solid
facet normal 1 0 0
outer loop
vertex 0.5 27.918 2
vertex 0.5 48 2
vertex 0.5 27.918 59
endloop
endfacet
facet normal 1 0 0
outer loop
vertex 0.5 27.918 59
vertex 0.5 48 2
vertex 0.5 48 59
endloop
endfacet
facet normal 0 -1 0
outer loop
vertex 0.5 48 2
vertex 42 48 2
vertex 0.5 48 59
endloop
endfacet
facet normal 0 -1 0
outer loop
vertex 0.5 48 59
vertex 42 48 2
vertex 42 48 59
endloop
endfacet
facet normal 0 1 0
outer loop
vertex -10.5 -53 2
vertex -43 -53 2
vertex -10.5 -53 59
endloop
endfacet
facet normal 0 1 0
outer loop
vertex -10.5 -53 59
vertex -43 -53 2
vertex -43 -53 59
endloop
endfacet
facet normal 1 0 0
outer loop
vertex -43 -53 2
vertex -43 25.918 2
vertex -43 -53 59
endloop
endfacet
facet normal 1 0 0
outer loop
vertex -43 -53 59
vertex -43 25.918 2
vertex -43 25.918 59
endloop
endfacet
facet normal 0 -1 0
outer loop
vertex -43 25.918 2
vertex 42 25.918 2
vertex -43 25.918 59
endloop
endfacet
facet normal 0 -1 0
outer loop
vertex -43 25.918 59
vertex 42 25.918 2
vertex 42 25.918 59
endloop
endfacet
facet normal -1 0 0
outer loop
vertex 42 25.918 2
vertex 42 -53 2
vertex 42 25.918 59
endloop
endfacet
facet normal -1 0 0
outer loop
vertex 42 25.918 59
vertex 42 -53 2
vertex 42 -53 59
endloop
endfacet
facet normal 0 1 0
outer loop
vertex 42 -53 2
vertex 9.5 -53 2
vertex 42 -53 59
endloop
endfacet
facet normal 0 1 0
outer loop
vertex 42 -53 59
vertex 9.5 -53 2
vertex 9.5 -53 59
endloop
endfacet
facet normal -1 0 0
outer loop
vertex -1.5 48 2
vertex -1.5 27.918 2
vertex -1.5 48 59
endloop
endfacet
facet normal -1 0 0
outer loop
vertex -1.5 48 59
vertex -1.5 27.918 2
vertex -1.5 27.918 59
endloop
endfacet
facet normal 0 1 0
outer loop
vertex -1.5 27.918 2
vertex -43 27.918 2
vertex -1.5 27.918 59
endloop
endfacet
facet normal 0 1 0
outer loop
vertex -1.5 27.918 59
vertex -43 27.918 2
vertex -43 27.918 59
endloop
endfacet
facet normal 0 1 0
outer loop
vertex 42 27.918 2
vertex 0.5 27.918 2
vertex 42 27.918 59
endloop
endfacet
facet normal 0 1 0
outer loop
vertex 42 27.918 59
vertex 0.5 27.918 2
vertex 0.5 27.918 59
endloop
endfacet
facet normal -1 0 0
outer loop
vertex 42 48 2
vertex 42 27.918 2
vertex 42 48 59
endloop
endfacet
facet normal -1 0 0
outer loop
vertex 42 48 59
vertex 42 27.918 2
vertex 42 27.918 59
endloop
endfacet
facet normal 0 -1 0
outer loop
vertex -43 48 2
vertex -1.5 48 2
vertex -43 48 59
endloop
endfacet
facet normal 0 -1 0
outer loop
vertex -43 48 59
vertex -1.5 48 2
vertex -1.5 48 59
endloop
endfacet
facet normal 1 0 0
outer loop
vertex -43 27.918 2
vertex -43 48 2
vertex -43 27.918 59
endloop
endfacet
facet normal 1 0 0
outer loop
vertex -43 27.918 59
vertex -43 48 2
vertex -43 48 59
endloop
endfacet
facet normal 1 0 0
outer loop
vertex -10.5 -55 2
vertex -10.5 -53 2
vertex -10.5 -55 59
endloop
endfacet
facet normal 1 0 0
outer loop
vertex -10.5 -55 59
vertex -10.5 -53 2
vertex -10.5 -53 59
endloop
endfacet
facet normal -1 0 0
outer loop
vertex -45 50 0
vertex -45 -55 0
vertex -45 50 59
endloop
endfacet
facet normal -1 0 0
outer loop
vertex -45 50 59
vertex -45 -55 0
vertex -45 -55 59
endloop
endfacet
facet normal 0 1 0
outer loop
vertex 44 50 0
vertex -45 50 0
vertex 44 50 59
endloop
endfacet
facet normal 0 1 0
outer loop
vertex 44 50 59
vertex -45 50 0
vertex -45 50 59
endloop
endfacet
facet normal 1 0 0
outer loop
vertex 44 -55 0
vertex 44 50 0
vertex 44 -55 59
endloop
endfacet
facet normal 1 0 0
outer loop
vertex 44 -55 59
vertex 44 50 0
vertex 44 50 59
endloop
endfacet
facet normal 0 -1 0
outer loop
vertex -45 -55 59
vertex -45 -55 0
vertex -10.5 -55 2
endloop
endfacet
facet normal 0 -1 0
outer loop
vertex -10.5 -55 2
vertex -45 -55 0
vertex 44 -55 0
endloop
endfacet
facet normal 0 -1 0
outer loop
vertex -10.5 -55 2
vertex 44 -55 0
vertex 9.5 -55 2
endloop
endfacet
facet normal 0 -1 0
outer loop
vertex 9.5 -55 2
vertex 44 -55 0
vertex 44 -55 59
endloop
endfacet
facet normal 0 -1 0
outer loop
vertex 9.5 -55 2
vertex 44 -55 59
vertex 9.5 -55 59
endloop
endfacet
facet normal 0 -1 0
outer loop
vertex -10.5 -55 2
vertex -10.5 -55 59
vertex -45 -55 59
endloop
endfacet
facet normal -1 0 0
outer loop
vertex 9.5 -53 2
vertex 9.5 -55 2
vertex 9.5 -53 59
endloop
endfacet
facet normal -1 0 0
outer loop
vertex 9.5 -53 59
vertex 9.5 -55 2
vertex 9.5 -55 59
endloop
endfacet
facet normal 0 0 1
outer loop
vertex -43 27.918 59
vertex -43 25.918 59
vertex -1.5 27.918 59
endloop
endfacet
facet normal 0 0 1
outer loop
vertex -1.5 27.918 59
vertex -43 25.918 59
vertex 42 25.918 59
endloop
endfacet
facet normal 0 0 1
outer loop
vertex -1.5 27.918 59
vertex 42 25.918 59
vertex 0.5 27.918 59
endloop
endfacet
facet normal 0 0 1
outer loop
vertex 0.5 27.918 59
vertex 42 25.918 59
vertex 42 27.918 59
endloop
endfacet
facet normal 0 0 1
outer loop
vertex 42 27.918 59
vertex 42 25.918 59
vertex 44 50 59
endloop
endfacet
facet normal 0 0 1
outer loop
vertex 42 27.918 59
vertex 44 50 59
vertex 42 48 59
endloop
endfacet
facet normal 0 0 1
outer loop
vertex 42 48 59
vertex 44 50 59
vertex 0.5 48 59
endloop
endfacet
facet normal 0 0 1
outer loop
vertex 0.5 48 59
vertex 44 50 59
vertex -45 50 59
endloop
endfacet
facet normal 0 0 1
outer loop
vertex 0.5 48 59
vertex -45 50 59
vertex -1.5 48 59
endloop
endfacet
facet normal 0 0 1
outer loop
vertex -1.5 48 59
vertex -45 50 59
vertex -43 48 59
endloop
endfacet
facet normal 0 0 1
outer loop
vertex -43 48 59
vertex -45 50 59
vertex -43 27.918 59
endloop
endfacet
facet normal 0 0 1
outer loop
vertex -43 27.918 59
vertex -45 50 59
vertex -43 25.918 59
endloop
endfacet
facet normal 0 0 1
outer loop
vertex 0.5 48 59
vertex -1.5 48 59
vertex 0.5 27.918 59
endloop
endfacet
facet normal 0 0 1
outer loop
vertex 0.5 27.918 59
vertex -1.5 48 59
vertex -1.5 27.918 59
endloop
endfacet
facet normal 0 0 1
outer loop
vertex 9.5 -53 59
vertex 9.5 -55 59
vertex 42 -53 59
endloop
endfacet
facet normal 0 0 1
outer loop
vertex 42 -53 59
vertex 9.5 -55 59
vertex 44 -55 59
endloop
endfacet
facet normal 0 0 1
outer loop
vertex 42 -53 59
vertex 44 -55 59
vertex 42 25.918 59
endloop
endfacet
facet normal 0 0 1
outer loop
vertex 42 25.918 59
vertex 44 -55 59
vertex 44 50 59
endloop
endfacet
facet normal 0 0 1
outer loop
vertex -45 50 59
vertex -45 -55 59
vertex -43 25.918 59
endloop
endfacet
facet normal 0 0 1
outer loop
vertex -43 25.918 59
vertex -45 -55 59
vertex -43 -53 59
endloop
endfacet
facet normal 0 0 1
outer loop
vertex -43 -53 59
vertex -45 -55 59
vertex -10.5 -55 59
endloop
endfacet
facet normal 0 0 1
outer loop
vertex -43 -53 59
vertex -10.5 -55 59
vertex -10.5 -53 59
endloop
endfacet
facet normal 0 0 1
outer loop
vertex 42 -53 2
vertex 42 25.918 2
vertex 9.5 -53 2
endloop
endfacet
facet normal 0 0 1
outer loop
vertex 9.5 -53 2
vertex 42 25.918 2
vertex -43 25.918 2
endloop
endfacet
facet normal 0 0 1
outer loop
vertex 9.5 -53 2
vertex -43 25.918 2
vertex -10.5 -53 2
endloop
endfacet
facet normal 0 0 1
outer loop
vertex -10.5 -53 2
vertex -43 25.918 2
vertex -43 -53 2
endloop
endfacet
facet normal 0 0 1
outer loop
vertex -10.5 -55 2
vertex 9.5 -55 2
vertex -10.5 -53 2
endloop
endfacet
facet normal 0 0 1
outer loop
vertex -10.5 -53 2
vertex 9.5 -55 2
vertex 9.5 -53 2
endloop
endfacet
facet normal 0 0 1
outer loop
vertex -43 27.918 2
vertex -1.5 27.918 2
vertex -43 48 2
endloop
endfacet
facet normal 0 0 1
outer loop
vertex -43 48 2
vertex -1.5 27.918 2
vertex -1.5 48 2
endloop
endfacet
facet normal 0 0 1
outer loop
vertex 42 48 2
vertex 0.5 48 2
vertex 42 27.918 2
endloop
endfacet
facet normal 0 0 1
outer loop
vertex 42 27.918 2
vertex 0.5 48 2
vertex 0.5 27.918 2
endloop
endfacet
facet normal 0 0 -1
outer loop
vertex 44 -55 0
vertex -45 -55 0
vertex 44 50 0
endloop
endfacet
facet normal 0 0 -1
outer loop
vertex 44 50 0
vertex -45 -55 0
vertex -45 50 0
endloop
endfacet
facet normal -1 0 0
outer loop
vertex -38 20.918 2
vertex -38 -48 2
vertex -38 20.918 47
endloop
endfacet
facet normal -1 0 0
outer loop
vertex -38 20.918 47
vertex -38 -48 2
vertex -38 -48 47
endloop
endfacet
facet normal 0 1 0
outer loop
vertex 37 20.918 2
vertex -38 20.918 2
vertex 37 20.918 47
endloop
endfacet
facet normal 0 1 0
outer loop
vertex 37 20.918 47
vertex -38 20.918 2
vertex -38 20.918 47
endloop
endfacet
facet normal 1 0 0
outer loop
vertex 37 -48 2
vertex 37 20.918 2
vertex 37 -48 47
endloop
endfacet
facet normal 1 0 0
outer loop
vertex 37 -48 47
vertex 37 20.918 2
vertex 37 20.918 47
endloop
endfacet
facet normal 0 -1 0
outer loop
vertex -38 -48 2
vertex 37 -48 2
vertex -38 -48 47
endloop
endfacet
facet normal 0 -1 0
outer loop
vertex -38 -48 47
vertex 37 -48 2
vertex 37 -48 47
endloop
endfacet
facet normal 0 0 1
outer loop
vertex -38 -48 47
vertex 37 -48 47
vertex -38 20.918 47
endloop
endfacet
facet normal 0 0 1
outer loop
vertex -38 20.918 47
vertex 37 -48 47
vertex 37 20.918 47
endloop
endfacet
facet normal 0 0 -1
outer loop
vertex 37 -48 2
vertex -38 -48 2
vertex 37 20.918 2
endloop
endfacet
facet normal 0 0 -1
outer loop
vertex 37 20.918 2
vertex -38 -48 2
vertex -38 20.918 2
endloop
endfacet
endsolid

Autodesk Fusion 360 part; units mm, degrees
sketch "Skizze1" plane through (0, 0, 0) normal (0, 0, 1) x (1, 0, 0)
  line L0 (-45, 50) -> (44, 50)
  line L1 (44, 50) -> (44, -55)
  line L2 (44, -55) -> (-45, -55)
  line L3 (-45, -55) -> (-45, 50)
  line L4 (-43, 48) -> (42, 48)
  line L5 (42, 48) -> (42, -53)
  line L6 (42, -53) -> (-43, -53)
  line L7 (-43, -53) -> (-43, 48)
  line L8 (-10.5, -53) -> (9.5, -53)
  line L9 (9.5, -53) -> (9.5, -55)
  line L10 (9.5, -55) -> (-10.5, -55)
  line L11 (-10.5, -55) -> (-10.5, -53)
  line L12 (-43, 27.9185) -> (42, 27.9185)
  line L13 (42, 27.9185) -> (42, 25.9185)
  line L14 (42, 25.9185) -> (-43, 25.9185)
  line L15 (-43, 25.9185) -> (-43, 27.9185)
  line L16 (-1.5, 48) -> (0.5, 48)
  line L17 (0.5, 48) -> (0.5, 27.9185)
  line L18 (0.5, 27.9185) -> (-1.5, 27.9185)
  line L19 (-1.5, 27.9185) -> (-1.5, 48)
  dimension "d1" = 89
  dimension "d2" = 105
  dimension "d3" = 2
  dimension "d4" = 2
  dimension "d5" = 2
  dimension "d6" = 2
  dimension "d7" = 20
  dimension "d8" = 34.5
  dimension "d9" = 34.5
  dimension "d10" = 2
  dimension "d11" = 2
  dimension "d12" = 41.5
  dimension "d13" = 85
  dimension "d14" = 41.5
extrude "Extrusion1" add sketch "Skizze1" along normal blind 2 contours L5 L6 L7 L8 L14 | L4 L7 L12 L19 | L4 L5 L12 L17 makes body 1 at (13.6667, -26.6938, 0) makes body 2 at (28.1667, 34.6123, 0) makes body 3 at (-29.1667, 41.3062, 0)
extrude "Extrusion2" add sketch "Skizze1" along normal blind 59 contours L0 L1 L2 L3 L4 L5 L6 L7 L9 L11 L13 L15 L16 | L5 L7 L12 L13 L14 L15 L18 | L4 L12 L16 L17 L18 L19 bodies 1 2 3
extrude "Extrusion3" add 1 faces at (2.8333, -53, 0.6667) along direction (0, -1, 0) blind 2 on bodies 1 bodies 1
sketch "Skizze2" plane through (0, 0, 2) normal (0, 0, 1) x (-1, 0, 0)
  line L0 (-42, 53) -> (-42, -25.9185)
  line L1 (-42, -25.9185) -> (43, -25.9185)
  line L2 (43, -25.9185) -> (43, 53)
  line L3 (43, 53) -> (10.5, 53)
  line L4 (10.5, 53) -> (10.5, 55)
  line L5 (10.5, 55) -> (-9.5, 55)
  line L6 (-9.5, 55) -> (-9.5, 53)
  line L7 (-9.5, 53) -> (-42, 53)
  line L8 (38, -20.9185) -> (-37, -20.9185)
  line L9 (-37, -20.9185) -> (-37, 48)
  line L10 (-37, 48) -> (38, 48)
  line L11 (38, 48) -> (38, -20.9185)
  dimension "d21" = 5
  dimension "d22" = 5
  dimension "d23" = 5
  dimension "d24" = 5
extrude "Extrusion4" add sketch "Skizze2" along normal blind 45 separate body contours L8 L9 L10 L11 makes body 4
